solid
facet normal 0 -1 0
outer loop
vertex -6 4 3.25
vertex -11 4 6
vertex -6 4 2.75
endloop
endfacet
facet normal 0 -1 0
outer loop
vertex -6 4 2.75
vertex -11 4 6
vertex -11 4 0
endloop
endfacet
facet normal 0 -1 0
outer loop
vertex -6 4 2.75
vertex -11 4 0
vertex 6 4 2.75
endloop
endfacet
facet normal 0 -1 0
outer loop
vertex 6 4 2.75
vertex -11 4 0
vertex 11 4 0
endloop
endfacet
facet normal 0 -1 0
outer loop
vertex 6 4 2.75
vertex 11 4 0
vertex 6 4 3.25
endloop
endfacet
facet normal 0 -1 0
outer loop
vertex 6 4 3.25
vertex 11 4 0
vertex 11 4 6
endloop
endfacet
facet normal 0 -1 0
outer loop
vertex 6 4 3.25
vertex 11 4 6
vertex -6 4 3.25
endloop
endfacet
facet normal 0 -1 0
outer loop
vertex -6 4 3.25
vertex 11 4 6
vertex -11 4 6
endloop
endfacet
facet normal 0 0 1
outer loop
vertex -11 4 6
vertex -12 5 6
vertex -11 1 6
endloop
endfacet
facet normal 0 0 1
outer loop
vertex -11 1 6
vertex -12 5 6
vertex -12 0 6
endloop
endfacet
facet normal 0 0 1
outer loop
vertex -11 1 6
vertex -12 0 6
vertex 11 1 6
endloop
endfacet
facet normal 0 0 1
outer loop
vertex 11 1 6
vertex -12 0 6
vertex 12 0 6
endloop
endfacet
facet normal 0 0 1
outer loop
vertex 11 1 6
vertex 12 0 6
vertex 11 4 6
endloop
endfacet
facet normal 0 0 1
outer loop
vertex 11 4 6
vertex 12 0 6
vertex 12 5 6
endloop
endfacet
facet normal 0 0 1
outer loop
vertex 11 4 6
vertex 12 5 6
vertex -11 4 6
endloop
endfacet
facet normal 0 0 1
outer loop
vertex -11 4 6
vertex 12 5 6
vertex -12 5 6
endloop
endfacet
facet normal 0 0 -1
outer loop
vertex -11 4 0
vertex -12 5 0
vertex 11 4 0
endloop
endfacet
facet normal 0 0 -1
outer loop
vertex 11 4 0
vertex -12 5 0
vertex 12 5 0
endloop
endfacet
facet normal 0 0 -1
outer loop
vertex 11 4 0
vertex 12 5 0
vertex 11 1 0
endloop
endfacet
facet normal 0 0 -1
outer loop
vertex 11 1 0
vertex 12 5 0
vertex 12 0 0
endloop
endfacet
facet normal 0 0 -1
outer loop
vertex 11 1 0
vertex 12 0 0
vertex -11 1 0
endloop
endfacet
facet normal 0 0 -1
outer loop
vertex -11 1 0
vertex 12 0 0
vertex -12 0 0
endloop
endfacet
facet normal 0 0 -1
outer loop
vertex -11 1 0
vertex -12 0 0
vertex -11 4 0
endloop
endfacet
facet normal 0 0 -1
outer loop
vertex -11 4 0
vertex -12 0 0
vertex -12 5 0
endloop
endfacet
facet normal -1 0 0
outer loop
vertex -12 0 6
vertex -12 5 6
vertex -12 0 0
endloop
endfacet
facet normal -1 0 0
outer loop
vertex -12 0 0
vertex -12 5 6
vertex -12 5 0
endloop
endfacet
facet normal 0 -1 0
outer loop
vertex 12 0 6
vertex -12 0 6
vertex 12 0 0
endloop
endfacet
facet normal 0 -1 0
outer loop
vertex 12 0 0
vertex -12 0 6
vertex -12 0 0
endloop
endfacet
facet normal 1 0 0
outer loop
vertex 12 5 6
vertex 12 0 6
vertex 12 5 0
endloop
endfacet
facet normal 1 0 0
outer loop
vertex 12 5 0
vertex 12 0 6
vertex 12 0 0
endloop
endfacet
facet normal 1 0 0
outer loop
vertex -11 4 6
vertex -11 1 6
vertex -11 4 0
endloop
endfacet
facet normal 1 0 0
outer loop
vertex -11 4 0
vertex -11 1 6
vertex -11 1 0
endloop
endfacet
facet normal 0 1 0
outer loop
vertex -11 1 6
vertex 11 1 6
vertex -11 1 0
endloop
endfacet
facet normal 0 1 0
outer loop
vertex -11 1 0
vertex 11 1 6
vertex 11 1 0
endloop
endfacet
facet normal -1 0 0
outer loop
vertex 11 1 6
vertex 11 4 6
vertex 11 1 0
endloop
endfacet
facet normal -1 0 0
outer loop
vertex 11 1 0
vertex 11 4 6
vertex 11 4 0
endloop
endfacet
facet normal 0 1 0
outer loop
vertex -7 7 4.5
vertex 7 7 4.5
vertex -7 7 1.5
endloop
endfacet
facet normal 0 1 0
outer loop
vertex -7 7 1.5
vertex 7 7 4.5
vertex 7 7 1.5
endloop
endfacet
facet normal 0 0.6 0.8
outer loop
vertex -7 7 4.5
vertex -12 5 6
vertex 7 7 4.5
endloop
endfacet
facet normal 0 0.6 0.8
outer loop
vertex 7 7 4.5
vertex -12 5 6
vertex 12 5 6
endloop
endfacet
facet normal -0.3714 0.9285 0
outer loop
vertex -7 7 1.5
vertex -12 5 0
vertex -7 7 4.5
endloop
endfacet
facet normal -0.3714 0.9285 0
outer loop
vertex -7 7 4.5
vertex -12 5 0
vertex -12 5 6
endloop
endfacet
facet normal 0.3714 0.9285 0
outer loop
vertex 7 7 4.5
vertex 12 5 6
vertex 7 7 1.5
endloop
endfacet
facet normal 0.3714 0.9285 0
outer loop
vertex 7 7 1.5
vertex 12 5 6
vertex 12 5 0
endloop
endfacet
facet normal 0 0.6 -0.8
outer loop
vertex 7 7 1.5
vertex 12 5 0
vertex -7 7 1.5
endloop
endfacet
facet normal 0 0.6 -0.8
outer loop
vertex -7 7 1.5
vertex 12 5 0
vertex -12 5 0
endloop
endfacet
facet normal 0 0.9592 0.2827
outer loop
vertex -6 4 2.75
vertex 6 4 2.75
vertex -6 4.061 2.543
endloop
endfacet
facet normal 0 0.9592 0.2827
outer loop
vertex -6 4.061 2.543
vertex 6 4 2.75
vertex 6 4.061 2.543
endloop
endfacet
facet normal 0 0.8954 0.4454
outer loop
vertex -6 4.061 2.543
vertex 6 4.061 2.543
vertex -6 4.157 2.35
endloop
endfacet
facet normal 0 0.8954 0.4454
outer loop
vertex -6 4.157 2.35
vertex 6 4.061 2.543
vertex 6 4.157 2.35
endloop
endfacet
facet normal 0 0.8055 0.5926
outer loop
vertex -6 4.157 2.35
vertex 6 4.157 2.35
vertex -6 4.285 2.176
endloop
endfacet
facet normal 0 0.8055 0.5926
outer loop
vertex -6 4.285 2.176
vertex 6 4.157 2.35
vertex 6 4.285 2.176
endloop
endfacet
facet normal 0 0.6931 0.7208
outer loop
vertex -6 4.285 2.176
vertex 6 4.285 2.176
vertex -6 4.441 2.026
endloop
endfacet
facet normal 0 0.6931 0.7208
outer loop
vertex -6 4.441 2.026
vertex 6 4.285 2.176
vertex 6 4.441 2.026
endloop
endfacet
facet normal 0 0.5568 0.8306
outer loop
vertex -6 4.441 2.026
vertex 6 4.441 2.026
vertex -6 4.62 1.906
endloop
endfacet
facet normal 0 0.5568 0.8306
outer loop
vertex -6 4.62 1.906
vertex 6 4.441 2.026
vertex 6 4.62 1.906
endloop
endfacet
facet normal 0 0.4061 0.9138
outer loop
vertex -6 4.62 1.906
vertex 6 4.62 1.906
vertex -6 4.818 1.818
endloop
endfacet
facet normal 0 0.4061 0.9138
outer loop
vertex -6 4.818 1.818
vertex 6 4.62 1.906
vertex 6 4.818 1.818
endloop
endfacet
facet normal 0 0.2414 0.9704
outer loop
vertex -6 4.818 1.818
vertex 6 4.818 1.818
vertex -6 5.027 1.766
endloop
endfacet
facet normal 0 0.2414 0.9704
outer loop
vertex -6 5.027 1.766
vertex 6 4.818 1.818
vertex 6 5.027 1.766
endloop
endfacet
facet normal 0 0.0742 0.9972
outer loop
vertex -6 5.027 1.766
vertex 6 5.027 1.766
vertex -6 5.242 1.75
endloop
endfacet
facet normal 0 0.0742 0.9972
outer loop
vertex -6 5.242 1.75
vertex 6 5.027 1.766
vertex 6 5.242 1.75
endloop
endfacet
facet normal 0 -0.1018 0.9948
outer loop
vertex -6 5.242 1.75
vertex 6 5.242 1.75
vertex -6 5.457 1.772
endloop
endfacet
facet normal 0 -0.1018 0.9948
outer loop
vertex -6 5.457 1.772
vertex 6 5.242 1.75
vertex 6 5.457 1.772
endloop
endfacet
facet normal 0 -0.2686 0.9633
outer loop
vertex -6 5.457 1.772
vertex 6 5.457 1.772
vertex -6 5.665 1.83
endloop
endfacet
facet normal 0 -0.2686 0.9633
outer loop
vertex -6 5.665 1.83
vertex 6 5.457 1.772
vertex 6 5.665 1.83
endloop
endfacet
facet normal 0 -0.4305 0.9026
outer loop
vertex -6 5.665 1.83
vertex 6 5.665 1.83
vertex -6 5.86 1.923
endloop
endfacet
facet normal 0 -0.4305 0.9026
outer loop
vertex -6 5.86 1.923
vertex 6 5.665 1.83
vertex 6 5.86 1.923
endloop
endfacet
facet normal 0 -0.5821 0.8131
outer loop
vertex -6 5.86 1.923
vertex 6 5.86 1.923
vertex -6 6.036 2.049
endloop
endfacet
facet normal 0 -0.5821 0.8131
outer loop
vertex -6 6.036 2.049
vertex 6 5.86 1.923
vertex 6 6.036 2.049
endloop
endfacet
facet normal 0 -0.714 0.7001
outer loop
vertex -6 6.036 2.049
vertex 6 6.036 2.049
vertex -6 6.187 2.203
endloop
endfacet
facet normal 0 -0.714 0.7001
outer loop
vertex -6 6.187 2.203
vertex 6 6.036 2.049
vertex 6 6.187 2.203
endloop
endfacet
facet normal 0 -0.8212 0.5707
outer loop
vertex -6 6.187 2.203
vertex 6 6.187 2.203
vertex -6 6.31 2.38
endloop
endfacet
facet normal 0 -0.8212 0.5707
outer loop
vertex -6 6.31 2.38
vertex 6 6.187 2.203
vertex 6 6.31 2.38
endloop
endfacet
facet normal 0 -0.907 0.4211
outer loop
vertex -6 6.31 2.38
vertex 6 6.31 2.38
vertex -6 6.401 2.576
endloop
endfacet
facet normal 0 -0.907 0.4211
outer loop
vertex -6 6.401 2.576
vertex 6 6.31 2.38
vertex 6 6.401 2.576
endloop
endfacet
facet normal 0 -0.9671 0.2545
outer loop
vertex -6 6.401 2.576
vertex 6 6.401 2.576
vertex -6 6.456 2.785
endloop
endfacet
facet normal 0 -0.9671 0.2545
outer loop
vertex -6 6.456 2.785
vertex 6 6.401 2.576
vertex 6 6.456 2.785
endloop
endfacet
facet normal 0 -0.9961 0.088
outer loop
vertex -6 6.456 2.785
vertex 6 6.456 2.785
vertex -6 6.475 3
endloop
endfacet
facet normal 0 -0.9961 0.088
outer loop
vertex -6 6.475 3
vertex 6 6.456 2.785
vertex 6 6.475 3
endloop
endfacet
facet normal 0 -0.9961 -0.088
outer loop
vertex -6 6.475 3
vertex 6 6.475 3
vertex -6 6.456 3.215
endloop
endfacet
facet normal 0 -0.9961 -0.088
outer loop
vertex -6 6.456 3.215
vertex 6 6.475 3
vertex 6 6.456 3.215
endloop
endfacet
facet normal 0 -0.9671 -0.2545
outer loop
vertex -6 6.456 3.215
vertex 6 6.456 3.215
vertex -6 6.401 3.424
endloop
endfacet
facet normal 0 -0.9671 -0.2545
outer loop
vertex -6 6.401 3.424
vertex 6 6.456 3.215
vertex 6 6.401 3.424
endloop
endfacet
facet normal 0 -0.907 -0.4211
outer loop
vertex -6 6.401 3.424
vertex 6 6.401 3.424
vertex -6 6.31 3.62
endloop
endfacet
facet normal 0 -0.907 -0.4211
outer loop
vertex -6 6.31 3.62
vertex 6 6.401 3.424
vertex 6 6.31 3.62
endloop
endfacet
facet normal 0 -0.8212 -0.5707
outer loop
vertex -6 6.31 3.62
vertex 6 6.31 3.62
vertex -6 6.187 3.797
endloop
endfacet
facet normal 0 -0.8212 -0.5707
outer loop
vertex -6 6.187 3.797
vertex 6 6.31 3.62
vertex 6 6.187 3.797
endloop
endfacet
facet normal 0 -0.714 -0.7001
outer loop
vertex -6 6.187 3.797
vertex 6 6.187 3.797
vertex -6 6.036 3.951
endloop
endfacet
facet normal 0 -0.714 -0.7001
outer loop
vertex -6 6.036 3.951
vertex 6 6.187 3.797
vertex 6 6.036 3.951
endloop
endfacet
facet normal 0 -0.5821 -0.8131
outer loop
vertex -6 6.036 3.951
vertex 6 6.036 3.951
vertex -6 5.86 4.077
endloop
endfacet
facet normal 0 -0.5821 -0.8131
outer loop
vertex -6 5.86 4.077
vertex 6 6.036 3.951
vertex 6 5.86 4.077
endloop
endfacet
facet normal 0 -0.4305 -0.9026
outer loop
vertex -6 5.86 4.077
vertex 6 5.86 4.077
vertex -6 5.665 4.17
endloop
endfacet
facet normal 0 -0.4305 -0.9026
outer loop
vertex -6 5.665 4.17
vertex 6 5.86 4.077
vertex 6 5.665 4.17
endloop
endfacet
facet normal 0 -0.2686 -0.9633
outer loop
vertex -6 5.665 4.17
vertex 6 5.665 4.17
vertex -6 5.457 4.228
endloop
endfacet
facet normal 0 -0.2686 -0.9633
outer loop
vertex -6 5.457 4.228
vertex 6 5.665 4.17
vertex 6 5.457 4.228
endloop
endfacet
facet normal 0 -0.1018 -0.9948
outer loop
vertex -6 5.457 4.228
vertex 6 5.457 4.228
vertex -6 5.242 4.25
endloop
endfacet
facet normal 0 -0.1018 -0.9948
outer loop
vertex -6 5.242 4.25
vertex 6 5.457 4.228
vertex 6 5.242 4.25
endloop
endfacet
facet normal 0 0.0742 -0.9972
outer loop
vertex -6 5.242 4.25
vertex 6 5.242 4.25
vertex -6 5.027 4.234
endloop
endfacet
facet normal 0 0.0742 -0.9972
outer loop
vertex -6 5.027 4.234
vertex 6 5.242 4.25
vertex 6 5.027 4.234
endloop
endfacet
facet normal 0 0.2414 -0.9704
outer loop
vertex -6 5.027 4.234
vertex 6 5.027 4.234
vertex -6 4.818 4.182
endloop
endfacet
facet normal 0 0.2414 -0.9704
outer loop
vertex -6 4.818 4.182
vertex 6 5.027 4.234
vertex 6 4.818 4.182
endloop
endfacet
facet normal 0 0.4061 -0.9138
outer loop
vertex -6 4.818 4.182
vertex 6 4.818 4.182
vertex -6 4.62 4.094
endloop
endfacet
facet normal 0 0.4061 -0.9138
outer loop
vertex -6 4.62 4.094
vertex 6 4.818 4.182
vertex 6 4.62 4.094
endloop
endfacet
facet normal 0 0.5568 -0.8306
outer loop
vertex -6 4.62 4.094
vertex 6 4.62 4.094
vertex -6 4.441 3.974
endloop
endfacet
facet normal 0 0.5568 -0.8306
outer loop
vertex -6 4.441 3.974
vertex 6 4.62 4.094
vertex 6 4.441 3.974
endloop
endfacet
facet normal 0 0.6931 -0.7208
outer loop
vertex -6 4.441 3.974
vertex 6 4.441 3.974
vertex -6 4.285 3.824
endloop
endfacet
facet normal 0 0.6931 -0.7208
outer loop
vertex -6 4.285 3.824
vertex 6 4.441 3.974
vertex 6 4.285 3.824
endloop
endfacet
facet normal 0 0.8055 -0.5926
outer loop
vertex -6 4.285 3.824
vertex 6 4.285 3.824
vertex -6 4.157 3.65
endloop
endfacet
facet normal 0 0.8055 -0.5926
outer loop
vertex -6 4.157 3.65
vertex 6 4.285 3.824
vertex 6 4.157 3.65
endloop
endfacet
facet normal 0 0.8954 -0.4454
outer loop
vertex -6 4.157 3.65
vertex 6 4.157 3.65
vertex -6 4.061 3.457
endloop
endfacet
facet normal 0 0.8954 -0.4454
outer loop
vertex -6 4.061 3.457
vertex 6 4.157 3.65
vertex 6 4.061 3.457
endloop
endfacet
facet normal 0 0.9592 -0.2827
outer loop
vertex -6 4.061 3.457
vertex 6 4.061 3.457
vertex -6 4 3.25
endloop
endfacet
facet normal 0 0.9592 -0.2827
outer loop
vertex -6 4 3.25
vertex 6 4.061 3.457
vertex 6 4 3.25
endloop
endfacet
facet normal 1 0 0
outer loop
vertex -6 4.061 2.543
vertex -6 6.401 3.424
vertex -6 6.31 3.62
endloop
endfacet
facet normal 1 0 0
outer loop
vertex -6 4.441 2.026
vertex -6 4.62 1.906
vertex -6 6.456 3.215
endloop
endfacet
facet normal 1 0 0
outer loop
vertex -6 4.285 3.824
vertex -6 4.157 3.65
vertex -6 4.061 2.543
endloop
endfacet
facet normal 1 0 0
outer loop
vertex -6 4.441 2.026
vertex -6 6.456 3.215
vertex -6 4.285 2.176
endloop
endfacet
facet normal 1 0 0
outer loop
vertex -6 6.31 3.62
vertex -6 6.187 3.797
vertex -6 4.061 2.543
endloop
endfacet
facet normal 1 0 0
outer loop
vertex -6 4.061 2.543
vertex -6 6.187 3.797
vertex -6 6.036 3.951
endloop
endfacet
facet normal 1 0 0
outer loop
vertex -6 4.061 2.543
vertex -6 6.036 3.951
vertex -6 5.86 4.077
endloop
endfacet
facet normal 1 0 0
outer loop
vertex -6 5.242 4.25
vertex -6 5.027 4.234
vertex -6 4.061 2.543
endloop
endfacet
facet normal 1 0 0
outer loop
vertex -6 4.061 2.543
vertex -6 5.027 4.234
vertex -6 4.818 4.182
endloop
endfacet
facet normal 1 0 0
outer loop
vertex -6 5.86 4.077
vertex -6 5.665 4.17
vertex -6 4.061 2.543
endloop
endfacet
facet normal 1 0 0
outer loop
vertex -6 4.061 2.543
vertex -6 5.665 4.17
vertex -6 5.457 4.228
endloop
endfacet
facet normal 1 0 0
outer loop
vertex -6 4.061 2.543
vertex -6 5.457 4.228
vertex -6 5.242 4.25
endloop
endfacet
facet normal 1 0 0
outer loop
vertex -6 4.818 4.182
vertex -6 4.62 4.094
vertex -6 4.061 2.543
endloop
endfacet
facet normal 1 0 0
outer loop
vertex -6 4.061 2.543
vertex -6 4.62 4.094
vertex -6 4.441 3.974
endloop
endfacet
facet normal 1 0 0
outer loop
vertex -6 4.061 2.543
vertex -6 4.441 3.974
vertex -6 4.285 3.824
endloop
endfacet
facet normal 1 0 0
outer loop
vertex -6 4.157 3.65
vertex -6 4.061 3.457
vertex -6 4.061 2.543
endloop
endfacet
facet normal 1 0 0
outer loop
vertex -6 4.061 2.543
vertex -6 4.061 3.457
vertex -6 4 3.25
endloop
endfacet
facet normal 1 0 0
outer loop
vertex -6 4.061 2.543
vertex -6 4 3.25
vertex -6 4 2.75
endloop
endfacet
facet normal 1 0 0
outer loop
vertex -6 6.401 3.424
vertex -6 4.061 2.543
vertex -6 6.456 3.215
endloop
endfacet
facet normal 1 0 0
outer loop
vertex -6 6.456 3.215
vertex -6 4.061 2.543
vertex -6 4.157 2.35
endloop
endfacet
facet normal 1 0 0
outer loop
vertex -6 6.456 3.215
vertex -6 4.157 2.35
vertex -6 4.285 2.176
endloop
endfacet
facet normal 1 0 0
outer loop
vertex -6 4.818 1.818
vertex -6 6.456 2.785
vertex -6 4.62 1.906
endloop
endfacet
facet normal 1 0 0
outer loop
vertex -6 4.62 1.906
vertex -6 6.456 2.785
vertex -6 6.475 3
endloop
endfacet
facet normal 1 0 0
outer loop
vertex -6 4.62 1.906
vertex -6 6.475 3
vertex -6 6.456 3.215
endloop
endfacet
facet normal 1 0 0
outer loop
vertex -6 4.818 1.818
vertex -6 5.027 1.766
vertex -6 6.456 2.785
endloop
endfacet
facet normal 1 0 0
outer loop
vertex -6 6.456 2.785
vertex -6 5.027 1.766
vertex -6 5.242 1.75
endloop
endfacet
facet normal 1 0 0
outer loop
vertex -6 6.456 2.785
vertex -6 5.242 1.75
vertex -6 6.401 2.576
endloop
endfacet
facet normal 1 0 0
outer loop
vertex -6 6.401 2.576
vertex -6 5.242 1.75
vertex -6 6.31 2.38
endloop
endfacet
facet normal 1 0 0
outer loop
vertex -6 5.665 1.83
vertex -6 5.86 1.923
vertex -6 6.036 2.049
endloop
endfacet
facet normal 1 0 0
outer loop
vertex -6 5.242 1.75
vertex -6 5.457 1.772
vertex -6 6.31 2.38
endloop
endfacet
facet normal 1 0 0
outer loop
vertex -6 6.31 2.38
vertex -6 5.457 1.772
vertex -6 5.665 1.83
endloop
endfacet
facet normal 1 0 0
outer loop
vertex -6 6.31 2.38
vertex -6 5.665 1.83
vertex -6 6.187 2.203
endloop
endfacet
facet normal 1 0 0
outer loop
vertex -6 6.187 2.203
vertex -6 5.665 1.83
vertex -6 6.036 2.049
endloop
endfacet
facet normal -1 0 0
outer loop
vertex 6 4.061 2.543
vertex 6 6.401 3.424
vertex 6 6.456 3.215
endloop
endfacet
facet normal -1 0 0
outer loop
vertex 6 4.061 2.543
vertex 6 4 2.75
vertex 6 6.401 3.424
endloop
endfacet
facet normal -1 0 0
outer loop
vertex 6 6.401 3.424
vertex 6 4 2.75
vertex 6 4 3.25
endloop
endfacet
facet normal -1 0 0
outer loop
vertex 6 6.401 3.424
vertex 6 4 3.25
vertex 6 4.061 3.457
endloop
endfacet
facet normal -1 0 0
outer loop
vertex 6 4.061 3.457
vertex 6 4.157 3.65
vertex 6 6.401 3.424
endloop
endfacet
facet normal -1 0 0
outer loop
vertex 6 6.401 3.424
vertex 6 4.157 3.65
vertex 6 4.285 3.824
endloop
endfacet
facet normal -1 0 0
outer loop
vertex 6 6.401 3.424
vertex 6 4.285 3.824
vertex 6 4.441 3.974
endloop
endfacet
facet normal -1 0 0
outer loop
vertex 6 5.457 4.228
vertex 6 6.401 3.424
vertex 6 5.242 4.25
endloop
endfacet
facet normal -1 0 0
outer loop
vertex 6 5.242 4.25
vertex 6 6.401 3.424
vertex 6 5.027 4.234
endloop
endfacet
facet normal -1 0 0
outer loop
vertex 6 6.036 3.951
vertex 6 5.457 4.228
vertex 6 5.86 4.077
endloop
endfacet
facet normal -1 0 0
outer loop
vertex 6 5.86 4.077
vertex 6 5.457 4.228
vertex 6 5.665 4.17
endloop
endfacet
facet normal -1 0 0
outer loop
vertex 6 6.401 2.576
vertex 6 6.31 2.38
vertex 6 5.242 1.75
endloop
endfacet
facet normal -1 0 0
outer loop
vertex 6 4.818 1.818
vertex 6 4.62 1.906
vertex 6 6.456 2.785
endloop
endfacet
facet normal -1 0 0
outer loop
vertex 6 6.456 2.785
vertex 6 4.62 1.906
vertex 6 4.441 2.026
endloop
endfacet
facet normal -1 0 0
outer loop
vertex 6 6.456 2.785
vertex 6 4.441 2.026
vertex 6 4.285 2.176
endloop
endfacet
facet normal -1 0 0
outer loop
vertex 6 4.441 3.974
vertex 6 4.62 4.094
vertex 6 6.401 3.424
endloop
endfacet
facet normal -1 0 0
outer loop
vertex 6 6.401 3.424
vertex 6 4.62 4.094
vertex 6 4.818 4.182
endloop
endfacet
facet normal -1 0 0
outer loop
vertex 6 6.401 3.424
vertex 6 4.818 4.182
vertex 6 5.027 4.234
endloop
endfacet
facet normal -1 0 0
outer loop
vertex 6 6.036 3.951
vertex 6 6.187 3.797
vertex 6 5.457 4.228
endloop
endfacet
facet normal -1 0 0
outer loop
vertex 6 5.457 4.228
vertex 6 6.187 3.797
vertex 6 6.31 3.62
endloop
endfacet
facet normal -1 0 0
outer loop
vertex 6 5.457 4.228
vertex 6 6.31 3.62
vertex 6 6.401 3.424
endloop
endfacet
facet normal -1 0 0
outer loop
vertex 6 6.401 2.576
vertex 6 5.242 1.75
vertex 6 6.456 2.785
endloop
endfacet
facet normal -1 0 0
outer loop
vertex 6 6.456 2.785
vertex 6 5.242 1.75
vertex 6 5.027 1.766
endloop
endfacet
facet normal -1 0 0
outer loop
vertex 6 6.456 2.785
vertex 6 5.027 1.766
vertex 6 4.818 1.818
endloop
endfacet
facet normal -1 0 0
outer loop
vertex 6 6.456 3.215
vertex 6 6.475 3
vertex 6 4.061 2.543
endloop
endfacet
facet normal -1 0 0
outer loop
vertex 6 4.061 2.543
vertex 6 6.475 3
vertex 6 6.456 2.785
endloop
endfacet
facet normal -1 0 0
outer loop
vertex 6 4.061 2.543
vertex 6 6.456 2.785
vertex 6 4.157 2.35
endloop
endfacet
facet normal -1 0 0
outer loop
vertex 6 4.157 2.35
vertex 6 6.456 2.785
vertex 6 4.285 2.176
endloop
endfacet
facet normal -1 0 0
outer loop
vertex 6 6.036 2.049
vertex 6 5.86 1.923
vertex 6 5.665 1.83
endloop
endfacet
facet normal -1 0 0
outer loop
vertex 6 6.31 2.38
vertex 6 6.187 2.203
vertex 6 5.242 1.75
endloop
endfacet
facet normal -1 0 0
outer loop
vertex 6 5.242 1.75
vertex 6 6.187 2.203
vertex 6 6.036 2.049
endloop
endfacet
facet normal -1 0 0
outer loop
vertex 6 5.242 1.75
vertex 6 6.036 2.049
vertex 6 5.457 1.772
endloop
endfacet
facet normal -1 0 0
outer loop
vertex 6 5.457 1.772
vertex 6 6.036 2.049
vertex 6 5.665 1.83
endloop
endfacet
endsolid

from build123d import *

# Parameters (mm, degrees)
SKETCH1_W           = 24
SKETCH1_H           = 5
SKETCH1_W_2         = 22
SKETCH1_H_2         = 3
BOSS_EXTRUDE1_DEPTH = 6
SKETCH2_W           = 14
SKETCH2_H           = 3
SKETCH5_R           = 1.25
CUT_EXTRUDE1_DEPTH  = 6


with BuildPart() as part:
    # Sketch1 → Boss-Extrude1 (new body)
    with BuildSketch(Plane.XY):
        with Locations((0, 2.5)):
            Rectangle(SKETCH1_W, SKETCH1_H)
        with Locations((0, 2.5)):
            Rectangle(SKETCH1_W_2, SKETCH1_H_2, mode=Mode.SUBTRACT)
    extrude(amount=BOSS_EXTRUDE1_DEPTH)

    # Sketch2 → section 1 of loft1
    with BuildSketch(Plane(origin=(0, 7, 0), x_dir=(1, 0, 0), z_dir=(0, 1, 0)), mode=Mode.PRIVATE) as loft1_s1:
        with Locations((0, -3)):
            Rectangle(SKETCH2_W, SKETCH2_H)
    # loft from a face of the part (loft1)
    loft([part.faces().sort_by_distance((0, 5, 3))[0], loft1_s1.sketch])

    # Sketch5 → Cut-Extrude1 (cut, symmetric)
    with BuildSketch(Plane(origin=(0, 0, 0), x_dir=(0, 0, -1), z_dir=(1, 0, 0))):
        with Locations((-3, 5.224744871)):
            Circle(SKETCH5_R)
    extrude(amount=CUT_EXTRUDE1_DEPTH, both=True, mode=Mode.SUBTRACT)


solid = part.part
